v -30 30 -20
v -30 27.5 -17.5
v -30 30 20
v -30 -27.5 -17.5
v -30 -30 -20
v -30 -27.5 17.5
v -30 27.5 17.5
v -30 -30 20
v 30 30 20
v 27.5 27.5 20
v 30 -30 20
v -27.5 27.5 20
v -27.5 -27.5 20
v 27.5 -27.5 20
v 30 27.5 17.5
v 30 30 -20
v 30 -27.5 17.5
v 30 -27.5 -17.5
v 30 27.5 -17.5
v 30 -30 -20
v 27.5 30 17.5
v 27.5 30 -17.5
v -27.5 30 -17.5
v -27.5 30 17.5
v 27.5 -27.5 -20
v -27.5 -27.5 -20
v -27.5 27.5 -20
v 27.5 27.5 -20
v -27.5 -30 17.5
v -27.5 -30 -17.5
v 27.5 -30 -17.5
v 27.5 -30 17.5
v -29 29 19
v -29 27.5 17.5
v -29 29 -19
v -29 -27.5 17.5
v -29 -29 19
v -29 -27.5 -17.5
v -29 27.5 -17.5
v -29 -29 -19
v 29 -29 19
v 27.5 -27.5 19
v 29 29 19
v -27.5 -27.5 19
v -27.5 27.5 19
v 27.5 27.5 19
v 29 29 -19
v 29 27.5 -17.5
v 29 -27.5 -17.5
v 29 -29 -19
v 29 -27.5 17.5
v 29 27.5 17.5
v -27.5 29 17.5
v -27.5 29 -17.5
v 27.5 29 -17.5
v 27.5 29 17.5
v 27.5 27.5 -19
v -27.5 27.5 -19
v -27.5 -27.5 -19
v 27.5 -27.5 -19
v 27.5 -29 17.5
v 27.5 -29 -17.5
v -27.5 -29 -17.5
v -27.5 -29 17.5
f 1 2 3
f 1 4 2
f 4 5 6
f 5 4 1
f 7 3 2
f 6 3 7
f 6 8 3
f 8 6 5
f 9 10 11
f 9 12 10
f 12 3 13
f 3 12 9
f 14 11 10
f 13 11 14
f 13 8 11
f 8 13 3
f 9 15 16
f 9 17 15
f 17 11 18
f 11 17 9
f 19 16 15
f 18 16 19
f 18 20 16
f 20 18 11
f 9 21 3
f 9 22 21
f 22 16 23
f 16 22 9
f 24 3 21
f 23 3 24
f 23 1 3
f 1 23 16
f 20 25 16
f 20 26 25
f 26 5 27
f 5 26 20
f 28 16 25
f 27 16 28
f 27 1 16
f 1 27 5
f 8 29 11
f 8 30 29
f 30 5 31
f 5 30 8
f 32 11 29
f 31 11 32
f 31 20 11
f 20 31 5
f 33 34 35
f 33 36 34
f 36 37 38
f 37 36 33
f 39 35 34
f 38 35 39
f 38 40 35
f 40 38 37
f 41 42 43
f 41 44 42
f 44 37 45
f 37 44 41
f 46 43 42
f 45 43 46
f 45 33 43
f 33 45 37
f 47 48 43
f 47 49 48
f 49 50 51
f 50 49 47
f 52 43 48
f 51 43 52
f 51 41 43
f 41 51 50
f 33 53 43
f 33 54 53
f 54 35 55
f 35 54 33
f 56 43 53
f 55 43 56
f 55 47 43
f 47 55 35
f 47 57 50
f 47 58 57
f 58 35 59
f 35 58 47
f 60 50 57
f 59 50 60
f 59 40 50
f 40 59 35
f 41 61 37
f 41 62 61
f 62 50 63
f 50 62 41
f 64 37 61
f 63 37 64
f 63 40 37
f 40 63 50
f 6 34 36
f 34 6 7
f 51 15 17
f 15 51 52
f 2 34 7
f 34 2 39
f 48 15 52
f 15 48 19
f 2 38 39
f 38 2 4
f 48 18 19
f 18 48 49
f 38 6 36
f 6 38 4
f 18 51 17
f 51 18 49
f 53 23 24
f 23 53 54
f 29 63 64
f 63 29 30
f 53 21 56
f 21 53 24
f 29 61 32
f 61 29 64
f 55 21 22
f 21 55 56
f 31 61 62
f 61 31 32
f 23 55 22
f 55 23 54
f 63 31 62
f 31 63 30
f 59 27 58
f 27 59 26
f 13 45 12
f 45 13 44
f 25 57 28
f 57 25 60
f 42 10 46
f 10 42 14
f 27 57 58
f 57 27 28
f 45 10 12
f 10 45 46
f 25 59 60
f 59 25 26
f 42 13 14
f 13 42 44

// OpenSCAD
$fn = 6;

// garbage: 180x180x

l = 60;
d = 60;
h = 40;

w_wall = 2;
l_wall = l-w_wall;
d_wall = d-w_wall;
h_wall = h-w_wall;

w_pillar = 5;
l_pillar = l-w_pillar;
d_pillar = d-w_pillar;
h_pillar = h-w_pillar;

difference(){
  cube([l,d,h],center=true);
  cube([l_wall,d_wall,h_wall],center=true);
  cube([l_pillar*2,d_pillar,h_pillar],center=true);
  cube([l_pillar,d_pillar*2,h_pillar],center=true);
  cube([l_pillar,d_pillar,h_pillar*2],center=true);
}
